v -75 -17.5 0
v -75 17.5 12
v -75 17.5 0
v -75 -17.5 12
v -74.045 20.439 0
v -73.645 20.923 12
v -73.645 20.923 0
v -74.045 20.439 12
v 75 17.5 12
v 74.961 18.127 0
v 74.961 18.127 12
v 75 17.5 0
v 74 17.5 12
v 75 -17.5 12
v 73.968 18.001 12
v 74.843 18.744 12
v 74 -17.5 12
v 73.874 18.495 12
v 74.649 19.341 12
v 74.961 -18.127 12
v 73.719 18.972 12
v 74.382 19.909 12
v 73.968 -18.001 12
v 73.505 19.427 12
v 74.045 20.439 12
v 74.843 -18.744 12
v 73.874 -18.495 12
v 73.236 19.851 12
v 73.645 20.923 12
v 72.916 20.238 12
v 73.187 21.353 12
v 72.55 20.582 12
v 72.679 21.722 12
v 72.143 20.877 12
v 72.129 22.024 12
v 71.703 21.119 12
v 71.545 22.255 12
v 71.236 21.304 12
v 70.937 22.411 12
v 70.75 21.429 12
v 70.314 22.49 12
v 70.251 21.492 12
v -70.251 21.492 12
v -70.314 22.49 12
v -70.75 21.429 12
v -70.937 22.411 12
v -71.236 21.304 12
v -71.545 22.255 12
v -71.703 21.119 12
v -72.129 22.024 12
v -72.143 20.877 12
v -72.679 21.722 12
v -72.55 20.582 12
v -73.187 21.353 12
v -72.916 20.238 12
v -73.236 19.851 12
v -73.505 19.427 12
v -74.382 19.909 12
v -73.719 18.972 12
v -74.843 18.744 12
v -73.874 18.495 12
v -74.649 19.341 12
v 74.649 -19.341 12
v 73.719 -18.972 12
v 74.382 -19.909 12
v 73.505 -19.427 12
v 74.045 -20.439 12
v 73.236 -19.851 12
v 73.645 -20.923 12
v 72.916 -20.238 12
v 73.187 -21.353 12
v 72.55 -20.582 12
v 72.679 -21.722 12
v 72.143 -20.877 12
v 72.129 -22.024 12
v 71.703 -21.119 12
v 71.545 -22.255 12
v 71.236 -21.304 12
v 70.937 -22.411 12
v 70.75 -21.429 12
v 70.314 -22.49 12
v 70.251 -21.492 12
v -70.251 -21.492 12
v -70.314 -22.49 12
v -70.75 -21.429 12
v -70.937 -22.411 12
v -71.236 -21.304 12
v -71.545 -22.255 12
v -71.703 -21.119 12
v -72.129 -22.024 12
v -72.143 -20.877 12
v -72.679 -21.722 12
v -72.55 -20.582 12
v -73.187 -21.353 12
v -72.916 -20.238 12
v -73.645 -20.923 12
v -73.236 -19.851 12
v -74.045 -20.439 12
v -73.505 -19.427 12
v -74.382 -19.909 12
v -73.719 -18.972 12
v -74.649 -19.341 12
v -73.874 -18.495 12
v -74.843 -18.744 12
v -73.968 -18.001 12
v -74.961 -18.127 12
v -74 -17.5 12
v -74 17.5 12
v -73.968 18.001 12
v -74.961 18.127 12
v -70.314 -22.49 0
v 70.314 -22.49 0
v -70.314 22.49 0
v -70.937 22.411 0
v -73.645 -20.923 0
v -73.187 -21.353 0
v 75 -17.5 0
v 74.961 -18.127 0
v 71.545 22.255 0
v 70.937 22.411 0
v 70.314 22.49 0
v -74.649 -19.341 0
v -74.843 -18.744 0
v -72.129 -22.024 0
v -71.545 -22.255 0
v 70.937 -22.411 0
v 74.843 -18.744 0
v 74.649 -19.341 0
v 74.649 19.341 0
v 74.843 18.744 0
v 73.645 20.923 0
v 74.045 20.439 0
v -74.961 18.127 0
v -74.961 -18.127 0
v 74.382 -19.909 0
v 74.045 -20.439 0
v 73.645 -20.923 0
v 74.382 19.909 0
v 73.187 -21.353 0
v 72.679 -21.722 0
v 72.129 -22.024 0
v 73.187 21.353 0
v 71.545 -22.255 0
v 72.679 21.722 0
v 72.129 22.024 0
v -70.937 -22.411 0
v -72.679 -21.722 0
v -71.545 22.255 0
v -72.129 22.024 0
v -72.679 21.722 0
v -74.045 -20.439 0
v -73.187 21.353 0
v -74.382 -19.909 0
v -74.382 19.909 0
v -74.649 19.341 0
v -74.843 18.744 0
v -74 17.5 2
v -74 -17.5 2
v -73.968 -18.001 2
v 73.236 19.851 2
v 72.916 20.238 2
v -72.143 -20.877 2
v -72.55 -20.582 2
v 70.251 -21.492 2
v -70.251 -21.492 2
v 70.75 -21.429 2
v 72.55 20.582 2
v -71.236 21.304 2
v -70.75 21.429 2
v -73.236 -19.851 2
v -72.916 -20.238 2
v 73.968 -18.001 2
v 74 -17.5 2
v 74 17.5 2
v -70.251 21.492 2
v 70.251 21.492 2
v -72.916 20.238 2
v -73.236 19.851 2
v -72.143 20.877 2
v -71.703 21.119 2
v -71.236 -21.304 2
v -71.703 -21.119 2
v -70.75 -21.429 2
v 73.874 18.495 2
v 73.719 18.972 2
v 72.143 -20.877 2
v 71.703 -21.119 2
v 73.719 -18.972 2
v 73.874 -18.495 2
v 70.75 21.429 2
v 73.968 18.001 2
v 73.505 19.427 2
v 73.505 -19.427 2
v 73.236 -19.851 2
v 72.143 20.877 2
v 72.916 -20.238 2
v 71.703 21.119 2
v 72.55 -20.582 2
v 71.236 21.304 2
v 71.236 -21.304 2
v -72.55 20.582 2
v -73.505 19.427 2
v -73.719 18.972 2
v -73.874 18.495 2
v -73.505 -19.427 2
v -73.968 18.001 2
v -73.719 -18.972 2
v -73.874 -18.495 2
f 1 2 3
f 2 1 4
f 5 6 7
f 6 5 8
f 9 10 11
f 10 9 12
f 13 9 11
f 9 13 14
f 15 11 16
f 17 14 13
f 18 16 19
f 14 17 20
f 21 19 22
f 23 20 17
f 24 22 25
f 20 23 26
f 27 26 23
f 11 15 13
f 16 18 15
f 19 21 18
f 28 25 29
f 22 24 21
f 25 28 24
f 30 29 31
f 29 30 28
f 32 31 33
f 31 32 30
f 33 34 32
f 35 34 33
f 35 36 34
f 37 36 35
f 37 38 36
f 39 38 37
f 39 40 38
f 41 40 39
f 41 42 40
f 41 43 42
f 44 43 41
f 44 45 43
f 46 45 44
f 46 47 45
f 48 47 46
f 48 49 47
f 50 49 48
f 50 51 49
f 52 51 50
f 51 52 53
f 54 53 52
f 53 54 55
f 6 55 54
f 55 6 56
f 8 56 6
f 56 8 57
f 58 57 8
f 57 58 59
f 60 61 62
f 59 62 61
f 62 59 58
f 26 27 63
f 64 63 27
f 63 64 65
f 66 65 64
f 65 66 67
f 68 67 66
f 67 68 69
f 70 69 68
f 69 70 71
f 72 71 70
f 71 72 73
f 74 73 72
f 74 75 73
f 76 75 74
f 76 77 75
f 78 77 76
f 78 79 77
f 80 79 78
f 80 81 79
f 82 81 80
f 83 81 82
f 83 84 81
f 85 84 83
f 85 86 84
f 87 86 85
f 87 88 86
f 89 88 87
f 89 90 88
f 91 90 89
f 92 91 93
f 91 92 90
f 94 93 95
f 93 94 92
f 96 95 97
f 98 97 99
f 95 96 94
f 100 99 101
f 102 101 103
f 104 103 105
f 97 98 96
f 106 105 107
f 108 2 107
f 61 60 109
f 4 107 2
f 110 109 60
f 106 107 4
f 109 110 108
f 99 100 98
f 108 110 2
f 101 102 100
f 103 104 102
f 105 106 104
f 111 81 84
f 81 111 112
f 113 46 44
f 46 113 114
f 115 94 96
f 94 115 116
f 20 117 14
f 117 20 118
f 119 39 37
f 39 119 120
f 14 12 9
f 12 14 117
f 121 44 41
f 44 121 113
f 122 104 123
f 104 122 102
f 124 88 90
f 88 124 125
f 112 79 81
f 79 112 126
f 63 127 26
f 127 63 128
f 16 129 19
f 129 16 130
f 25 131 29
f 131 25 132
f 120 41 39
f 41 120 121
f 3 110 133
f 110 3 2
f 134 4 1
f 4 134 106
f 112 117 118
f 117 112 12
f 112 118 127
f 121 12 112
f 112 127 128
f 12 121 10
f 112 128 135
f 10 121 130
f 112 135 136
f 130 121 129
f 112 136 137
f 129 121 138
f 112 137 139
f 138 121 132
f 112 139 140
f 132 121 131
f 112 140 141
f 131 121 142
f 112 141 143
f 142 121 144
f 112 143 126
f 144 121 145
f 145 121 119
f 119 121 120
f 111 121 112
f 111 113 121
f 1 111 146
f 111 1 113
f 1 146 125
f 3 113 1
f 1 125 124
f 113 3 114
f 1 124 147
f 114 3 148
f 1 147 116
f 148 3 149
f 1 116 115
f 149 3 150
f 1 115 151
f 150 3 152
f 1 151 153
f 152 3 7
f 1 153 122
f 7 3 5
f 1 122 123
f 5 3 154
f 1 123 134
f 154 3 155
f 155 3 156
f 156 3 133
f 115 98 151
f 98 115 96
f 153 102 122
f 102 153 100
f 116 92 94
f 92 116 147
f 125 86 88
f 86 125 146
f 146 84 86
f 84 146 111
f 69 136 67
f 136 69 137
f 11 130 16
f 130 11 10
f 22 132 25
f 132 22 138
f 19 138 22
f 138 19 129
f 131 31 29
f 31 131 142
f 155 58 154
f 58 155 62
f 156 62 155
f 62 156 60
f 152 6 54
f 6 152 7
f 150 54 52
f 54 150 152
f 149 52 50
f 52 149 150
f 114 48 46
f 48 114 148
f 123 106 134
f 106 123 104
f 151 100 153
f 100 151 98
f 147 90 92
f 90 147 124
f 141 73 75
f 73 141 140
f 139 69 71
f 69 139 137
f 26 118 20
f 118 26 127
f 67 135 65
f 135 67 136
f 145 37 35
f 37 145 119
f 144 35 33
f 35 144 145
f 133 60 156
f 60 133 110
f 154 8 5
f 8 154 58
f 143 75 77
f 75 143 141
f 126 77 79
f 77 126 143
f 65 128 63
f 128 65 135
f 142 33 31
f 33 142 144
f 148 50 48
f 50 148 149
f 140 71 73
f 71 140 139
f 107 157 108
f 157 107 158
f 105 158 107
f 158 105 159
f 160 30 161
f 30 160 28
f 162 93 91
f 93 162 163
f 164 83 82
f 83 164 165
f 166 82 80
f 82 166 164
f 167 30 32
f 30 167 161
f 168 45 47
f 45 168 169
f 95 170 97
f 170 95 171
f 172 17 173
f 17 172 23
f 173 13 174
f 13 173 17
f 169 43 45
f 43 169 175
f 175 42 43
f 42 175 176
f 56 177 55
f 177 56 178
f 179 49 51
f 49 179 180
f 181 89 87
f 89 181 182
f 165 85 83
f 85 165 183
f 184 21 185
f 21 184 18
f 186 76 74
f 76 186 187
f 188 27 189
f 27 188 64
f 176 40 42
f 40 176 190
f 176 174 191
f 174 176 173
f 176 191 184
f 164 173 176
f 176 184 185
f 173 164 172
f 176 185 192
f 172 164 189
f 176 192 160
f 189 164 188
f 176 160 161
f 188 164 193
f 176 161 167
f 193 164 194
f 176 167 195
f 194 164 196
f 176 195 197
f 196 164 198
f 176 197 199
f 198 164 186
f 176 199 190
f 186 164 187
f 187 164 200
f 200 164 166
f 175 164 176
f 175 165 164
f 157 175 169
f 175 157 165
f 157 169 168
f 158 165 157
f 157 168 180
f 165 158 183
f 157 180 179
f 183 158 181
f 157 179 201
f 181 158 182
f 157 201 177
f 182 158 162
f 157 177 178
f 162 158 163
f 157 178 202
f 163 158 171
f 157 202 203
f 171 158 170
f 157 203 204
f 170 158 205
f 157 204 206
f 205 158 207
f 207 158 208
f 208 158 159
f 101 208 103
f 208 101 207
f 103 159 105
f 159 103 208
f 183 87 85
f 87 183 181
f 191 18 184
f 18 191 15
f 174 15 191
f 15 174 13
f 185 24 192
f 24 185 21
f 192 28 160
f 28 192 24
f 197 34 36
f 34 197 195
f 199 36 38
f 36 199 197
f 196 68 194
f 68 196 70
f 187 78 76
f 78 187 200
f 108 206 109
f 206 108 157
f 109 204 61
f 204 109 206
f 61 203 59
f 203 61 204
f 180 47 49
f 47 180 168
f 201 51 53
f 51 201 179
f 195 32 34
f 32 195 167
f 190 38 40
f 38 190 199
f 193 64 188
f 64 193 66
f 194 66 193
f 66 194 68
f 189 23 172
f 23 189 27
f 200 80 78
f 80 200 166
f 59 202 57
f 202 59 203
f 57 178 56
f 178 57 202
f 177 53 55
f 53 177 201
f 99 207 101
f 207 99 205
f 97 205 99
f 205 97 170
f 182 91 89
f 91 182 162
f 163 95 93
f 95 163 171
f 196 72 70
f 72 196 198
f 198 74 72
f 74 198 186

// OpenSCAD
$fn = 50;


difference() {
	union() {
		hull() {
			translate(v = [-70.0000000000, 17.5000000000, 0]) {
				cylinder(h = 12, r = 5);
			}
			translate(v = [70.0000000000, 17.5000000000, 0]) {
				cylinder(h = 12, r = 5);
			}
			translate(v = [-70.0000000000, -17.5000000000, 0]) {
				cylinder(h = 12, r = 5);
			}
			translate(v = [70.0000000000, -17.5000000000, 0]) {
				cylinder(h = 12, r = 5);
			}
		}
	}
	union() {
		translate(v = [0, 0, 2]) {
			hull() {
				translate(v = [-70.0000000000, 17.5000000000, 0]) {
					cylinder(h = 10, r = 4);
				}
				translate(v = [70.0000000000, 17.5000000000, 0]) {
					cylinder(h = 10, r = 4);
				}
				translate(v = [-70.0000000000, -17.5000000000, 0]) {
					cylinder(h = 10, r = 4);
				}
				translate(v = [70.0000000000, -17.5000000000, 0]) {
					cylinder(h = 10, r = 4);
				}
			}
		}
	}
}
